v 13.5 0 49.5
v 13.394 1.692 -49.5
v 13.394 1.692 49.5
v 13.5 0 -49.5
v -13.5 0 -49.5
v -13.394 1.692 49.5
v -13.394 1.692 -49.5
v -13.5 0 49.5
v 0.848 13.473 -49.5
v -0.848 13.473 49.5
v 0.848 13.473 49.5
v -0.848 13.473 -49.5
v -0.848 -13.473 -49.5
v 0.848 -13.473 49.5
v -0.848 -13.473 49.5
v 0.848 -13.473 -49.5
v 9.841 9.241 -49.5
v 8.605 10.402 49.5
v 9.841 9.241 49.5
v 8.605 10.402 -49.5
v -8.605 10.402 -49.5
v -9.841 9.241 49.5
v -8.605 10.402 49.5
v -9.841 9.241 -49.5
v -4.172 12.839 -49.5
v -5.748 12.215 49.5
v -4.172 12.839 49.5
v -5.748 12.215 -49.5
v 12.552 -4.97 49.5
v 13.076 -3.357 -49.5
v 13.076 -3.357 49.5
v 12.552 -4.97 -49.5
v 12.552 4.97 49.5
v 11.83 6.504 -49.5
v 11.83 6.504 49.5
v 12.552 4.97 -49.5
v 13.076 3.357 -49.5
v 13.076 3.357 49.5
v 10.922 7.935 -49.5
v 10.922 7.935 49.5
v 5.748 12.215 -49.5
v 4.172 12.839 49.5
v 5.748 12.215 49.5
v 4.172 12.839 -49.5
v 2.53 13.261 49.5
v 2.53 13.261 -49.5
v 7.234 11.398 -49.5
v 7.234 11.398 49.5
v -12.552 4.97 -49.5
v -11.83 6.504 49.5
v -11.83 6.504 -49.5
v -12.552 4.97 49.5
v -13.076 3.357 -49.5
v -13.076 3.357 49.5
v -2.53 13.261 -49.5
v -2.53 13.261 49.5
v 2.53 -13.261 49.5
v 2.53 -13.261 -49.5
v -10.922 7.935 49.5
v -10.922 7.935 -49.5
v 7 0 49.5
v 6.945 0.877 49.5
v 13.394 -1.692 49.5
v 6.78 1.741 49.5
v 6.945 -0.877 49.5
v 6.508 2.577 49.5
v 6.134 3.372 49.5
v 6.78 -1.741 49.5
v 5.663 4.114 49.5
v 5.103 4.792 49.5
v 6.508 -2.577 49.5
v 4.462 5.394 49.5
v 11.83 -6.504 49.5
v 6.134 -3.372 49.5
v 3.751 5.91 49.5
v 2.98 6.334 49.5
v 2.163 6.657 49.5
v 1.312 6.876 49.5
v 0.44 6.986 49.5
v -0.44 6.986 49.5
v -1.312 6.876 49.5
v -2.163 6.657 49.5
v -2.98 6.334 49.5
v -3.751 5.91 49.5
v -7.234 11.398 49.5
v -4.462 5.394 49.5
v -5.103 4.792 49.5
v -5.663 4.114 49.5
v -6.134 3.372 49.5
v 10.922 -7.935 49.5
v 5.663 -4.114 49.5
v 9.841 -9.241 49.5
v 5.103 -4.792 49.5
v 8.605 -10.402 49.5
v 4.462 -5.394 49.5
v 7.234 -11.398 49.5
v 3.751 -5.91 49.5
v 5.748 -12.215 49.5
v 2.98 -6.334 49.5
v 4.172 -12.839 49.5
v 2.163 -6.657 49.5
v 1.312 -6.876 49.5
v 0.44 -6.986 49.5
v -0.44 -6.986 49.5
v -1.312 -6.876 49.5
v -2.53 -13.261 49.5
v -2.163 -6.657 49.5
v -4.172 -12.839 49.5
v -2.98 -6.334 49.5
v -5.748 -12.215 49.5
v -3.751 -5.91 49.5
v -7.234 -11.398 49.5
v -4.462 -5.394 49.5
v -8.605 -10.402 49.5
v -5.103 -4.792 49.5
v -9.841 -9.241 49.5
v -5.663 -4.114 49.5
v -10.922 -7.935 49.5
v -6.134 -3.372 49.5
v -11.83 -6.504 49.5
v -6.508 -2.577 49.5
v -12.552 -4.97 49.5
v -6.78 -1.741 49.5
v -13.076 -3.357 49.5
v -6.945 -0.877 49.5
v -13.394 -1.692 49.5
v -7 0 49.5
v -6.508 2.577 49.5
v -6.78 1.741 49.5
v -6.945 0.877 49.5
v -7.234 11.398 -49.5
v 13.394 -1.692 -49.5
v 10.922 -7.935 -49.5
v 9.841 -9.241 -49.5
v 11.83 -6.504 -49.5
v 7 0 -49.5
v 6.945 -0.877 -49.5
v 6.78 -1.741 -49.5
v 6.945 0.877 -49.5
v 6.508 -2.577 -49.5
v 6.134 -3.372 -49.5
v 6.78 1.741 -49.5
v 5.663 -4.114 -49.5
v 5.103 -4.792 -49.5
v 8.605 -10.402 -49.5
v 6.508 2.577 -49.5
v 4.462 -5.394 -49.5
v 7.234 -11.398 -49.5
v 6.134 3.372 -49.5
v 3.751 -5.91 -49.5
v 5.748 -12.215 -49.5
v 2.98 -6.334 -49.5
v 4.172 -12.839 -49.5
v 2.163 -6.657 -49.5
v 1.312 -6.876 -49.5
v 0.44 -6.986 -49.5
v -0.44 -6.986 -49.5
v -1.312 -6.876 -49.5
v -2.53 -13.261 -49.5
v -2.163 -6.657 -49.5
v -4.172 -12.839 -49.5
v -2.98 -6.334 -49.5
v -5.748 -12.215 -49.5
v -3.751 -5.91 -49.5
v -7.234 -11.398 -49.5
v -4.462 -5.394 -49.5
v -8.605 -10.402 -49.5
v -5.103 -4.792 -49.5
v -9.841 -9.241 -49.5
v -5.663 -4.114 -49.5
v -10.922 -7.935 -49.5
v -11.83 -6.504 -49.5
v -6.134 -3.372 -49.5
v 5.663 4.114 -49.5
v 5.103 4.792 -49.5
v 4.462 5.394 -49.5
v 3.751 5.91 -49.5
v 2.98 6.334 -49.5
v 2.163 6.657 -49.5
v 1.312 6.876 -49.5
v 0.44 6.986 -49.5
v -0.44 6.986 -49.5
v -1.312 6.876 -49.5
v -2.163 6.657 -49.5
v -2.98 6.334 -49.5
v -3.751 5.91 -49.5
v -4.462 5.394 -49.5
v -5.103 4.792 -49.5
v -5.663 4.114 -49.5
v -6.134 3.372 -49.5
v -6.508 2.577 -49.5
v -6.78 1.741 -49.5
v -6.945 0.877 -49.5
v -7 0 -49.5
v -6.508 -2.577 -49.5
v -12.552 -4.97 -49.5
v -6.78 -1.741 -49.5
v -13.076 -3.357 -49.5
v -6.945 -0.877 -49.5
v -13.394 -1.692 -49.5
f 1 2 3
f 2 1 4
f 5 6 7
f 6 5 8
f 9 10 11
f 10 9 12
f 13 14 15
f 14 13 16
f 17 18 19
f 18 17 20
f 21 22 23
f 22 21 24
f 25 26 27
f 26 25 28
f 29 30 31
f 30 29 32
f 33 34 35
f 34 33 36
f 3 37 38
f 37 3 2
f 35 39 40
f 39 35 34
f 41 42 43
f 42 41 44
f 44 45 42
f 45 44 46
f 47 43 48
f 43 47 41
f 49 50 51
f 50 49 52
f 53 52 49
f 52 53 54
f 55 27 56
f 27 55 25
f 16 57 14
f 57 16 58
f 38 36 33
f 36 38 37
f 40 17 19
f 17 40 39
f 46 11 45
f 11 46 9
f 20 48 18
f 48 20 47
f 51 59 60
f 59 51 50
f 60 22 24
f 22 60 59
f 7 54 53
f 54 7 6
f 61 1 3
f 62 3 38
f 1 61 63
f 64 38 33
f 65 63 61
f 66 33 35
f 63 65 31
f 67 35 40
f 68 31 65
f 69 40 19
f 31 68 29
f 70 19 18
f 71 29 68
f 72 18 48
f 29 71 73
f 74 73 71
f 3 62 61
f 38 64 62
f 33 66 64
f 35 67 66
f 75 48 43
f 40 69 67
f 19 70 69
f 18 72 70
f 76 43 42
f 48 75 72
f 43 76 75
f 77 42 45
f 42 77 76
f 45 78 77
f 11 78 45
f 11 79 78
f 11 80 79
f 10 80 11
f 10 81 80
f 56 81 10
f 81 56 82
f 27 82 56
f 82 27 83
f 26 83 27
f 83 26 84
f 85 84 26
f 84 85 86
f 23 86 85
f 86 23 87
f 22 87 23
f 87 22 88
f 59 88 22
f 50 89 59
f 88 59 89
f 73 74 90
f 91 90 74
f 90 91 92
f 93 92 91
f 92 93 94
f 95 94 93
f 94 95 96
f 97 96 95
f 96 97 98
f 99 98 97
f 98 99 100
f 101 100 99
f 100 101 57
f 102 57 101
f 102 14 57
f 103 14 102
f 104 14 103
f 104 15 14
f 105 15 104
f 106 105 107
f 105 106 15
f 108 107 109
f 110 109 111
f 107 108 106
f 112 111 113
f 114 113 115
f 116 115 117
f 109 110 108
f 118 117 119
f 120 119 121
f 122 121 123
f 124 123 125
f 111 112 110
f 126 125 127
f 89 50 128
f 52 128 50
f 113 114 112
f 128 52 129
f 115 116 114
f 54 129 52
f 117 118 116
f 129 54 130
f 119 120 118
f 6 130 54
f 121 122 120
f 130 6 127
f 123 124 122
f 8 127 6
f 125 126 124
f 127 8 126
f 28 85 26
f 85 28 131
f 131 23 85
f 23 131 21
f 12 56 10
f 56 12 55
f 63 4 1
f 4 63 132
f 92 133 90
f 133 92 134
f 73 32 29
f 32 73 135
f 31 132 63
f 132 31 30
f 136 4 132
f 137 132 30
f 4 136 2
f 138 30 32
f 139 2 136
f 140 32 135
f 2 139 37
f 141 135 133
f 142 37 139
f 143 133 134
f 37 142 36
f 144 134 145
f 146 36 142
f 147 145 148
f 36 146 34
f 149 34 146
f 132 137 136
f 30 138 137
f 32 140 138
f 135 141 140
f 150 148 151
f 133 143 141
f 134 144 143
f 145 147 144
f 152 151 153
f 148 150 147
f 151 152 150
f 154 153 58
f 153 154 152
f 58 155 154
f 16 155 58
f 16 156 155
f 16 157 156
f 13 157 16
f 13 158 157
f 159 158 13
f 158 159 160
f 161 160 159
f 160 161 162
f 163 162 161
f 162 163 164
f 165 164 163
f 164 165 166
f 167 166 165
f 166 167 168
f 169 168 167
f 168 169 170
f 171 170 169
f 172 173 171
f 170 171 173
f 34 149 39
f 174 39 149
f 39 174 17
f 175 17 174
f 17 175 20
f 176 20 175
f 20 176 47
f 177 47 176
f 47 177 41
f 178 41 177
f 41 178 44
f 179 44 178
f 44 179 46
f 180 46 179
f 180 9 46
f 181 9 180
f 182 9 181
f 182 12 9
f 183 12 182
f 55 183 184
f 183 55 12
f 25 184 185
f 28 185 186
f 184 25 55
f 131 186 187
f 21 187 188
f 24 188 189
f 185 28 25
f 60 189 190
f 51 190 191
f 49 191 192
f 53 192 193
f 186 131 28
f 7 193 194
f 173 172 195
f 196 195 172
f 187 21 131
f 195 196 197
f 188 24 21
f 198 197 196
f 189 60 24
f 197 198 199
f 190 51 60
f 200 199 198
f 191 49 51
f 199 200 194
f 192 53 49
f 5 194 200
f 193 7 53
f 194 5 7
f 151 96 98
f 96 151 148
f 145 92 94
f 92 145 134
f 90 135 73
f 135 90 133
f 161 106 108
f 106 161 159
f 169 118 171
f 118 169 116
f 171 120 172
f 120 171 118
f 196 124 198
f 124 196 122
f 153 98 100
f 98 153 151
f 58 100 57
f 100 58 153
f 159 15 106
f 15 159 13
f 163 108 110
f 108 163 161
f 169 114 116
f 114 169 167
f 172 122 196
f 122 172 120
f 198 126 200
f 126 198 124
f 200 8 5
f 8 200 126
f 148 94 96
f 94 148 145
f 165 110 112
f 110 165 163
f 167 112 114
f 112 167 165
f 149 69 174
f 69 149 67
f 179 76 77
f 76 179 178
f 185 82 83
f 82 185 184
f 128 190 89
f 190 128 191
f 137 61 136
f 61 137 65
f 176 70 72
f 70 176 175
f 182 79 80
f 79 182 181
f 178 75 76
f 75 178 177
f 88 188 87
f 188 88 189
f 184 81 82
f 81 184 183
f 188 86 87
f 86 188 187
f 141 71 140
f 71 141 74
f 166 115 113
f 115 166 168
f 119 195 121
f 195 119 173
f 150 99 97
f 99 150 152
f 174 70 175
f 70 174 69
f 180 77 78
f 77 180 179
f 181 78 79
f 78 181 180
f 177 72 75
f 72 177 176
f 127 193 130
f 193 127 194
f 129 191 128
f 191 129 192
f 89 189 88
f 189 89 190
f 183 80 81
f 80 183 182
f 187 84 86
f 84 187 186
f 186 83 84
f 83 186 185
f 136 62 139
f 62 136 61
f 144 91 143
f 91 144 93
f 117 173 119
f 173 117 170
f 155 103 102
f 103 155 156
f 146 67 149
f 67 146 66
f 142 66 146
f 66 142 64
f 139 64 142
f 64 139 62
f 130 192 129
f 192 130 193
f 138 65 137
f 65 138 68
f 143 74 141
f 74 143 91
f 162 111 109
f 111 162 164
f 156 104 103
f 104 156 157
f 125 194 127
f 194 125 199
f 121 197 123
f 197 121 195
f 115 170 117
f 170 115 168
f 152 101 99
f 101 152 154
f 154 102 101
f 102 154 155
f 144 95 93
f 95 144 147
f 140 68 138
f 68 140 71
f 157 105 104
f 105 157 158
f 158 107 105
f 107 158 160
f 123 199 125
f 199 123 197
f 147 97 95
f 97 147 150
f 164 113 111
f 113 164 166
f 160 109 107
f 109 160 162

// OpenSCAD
$fn = 50;


difference() {
	union() {
		translate(v = [0, 0, -49.5000000000]) {
			cylinder(h = 99, r = 13.5000000000);
		}
	}
	union() {
		translate(v = [0, 0, -100.0000000000]) {
			cylinder(h = 200, r = 7);
		}
	}
}
